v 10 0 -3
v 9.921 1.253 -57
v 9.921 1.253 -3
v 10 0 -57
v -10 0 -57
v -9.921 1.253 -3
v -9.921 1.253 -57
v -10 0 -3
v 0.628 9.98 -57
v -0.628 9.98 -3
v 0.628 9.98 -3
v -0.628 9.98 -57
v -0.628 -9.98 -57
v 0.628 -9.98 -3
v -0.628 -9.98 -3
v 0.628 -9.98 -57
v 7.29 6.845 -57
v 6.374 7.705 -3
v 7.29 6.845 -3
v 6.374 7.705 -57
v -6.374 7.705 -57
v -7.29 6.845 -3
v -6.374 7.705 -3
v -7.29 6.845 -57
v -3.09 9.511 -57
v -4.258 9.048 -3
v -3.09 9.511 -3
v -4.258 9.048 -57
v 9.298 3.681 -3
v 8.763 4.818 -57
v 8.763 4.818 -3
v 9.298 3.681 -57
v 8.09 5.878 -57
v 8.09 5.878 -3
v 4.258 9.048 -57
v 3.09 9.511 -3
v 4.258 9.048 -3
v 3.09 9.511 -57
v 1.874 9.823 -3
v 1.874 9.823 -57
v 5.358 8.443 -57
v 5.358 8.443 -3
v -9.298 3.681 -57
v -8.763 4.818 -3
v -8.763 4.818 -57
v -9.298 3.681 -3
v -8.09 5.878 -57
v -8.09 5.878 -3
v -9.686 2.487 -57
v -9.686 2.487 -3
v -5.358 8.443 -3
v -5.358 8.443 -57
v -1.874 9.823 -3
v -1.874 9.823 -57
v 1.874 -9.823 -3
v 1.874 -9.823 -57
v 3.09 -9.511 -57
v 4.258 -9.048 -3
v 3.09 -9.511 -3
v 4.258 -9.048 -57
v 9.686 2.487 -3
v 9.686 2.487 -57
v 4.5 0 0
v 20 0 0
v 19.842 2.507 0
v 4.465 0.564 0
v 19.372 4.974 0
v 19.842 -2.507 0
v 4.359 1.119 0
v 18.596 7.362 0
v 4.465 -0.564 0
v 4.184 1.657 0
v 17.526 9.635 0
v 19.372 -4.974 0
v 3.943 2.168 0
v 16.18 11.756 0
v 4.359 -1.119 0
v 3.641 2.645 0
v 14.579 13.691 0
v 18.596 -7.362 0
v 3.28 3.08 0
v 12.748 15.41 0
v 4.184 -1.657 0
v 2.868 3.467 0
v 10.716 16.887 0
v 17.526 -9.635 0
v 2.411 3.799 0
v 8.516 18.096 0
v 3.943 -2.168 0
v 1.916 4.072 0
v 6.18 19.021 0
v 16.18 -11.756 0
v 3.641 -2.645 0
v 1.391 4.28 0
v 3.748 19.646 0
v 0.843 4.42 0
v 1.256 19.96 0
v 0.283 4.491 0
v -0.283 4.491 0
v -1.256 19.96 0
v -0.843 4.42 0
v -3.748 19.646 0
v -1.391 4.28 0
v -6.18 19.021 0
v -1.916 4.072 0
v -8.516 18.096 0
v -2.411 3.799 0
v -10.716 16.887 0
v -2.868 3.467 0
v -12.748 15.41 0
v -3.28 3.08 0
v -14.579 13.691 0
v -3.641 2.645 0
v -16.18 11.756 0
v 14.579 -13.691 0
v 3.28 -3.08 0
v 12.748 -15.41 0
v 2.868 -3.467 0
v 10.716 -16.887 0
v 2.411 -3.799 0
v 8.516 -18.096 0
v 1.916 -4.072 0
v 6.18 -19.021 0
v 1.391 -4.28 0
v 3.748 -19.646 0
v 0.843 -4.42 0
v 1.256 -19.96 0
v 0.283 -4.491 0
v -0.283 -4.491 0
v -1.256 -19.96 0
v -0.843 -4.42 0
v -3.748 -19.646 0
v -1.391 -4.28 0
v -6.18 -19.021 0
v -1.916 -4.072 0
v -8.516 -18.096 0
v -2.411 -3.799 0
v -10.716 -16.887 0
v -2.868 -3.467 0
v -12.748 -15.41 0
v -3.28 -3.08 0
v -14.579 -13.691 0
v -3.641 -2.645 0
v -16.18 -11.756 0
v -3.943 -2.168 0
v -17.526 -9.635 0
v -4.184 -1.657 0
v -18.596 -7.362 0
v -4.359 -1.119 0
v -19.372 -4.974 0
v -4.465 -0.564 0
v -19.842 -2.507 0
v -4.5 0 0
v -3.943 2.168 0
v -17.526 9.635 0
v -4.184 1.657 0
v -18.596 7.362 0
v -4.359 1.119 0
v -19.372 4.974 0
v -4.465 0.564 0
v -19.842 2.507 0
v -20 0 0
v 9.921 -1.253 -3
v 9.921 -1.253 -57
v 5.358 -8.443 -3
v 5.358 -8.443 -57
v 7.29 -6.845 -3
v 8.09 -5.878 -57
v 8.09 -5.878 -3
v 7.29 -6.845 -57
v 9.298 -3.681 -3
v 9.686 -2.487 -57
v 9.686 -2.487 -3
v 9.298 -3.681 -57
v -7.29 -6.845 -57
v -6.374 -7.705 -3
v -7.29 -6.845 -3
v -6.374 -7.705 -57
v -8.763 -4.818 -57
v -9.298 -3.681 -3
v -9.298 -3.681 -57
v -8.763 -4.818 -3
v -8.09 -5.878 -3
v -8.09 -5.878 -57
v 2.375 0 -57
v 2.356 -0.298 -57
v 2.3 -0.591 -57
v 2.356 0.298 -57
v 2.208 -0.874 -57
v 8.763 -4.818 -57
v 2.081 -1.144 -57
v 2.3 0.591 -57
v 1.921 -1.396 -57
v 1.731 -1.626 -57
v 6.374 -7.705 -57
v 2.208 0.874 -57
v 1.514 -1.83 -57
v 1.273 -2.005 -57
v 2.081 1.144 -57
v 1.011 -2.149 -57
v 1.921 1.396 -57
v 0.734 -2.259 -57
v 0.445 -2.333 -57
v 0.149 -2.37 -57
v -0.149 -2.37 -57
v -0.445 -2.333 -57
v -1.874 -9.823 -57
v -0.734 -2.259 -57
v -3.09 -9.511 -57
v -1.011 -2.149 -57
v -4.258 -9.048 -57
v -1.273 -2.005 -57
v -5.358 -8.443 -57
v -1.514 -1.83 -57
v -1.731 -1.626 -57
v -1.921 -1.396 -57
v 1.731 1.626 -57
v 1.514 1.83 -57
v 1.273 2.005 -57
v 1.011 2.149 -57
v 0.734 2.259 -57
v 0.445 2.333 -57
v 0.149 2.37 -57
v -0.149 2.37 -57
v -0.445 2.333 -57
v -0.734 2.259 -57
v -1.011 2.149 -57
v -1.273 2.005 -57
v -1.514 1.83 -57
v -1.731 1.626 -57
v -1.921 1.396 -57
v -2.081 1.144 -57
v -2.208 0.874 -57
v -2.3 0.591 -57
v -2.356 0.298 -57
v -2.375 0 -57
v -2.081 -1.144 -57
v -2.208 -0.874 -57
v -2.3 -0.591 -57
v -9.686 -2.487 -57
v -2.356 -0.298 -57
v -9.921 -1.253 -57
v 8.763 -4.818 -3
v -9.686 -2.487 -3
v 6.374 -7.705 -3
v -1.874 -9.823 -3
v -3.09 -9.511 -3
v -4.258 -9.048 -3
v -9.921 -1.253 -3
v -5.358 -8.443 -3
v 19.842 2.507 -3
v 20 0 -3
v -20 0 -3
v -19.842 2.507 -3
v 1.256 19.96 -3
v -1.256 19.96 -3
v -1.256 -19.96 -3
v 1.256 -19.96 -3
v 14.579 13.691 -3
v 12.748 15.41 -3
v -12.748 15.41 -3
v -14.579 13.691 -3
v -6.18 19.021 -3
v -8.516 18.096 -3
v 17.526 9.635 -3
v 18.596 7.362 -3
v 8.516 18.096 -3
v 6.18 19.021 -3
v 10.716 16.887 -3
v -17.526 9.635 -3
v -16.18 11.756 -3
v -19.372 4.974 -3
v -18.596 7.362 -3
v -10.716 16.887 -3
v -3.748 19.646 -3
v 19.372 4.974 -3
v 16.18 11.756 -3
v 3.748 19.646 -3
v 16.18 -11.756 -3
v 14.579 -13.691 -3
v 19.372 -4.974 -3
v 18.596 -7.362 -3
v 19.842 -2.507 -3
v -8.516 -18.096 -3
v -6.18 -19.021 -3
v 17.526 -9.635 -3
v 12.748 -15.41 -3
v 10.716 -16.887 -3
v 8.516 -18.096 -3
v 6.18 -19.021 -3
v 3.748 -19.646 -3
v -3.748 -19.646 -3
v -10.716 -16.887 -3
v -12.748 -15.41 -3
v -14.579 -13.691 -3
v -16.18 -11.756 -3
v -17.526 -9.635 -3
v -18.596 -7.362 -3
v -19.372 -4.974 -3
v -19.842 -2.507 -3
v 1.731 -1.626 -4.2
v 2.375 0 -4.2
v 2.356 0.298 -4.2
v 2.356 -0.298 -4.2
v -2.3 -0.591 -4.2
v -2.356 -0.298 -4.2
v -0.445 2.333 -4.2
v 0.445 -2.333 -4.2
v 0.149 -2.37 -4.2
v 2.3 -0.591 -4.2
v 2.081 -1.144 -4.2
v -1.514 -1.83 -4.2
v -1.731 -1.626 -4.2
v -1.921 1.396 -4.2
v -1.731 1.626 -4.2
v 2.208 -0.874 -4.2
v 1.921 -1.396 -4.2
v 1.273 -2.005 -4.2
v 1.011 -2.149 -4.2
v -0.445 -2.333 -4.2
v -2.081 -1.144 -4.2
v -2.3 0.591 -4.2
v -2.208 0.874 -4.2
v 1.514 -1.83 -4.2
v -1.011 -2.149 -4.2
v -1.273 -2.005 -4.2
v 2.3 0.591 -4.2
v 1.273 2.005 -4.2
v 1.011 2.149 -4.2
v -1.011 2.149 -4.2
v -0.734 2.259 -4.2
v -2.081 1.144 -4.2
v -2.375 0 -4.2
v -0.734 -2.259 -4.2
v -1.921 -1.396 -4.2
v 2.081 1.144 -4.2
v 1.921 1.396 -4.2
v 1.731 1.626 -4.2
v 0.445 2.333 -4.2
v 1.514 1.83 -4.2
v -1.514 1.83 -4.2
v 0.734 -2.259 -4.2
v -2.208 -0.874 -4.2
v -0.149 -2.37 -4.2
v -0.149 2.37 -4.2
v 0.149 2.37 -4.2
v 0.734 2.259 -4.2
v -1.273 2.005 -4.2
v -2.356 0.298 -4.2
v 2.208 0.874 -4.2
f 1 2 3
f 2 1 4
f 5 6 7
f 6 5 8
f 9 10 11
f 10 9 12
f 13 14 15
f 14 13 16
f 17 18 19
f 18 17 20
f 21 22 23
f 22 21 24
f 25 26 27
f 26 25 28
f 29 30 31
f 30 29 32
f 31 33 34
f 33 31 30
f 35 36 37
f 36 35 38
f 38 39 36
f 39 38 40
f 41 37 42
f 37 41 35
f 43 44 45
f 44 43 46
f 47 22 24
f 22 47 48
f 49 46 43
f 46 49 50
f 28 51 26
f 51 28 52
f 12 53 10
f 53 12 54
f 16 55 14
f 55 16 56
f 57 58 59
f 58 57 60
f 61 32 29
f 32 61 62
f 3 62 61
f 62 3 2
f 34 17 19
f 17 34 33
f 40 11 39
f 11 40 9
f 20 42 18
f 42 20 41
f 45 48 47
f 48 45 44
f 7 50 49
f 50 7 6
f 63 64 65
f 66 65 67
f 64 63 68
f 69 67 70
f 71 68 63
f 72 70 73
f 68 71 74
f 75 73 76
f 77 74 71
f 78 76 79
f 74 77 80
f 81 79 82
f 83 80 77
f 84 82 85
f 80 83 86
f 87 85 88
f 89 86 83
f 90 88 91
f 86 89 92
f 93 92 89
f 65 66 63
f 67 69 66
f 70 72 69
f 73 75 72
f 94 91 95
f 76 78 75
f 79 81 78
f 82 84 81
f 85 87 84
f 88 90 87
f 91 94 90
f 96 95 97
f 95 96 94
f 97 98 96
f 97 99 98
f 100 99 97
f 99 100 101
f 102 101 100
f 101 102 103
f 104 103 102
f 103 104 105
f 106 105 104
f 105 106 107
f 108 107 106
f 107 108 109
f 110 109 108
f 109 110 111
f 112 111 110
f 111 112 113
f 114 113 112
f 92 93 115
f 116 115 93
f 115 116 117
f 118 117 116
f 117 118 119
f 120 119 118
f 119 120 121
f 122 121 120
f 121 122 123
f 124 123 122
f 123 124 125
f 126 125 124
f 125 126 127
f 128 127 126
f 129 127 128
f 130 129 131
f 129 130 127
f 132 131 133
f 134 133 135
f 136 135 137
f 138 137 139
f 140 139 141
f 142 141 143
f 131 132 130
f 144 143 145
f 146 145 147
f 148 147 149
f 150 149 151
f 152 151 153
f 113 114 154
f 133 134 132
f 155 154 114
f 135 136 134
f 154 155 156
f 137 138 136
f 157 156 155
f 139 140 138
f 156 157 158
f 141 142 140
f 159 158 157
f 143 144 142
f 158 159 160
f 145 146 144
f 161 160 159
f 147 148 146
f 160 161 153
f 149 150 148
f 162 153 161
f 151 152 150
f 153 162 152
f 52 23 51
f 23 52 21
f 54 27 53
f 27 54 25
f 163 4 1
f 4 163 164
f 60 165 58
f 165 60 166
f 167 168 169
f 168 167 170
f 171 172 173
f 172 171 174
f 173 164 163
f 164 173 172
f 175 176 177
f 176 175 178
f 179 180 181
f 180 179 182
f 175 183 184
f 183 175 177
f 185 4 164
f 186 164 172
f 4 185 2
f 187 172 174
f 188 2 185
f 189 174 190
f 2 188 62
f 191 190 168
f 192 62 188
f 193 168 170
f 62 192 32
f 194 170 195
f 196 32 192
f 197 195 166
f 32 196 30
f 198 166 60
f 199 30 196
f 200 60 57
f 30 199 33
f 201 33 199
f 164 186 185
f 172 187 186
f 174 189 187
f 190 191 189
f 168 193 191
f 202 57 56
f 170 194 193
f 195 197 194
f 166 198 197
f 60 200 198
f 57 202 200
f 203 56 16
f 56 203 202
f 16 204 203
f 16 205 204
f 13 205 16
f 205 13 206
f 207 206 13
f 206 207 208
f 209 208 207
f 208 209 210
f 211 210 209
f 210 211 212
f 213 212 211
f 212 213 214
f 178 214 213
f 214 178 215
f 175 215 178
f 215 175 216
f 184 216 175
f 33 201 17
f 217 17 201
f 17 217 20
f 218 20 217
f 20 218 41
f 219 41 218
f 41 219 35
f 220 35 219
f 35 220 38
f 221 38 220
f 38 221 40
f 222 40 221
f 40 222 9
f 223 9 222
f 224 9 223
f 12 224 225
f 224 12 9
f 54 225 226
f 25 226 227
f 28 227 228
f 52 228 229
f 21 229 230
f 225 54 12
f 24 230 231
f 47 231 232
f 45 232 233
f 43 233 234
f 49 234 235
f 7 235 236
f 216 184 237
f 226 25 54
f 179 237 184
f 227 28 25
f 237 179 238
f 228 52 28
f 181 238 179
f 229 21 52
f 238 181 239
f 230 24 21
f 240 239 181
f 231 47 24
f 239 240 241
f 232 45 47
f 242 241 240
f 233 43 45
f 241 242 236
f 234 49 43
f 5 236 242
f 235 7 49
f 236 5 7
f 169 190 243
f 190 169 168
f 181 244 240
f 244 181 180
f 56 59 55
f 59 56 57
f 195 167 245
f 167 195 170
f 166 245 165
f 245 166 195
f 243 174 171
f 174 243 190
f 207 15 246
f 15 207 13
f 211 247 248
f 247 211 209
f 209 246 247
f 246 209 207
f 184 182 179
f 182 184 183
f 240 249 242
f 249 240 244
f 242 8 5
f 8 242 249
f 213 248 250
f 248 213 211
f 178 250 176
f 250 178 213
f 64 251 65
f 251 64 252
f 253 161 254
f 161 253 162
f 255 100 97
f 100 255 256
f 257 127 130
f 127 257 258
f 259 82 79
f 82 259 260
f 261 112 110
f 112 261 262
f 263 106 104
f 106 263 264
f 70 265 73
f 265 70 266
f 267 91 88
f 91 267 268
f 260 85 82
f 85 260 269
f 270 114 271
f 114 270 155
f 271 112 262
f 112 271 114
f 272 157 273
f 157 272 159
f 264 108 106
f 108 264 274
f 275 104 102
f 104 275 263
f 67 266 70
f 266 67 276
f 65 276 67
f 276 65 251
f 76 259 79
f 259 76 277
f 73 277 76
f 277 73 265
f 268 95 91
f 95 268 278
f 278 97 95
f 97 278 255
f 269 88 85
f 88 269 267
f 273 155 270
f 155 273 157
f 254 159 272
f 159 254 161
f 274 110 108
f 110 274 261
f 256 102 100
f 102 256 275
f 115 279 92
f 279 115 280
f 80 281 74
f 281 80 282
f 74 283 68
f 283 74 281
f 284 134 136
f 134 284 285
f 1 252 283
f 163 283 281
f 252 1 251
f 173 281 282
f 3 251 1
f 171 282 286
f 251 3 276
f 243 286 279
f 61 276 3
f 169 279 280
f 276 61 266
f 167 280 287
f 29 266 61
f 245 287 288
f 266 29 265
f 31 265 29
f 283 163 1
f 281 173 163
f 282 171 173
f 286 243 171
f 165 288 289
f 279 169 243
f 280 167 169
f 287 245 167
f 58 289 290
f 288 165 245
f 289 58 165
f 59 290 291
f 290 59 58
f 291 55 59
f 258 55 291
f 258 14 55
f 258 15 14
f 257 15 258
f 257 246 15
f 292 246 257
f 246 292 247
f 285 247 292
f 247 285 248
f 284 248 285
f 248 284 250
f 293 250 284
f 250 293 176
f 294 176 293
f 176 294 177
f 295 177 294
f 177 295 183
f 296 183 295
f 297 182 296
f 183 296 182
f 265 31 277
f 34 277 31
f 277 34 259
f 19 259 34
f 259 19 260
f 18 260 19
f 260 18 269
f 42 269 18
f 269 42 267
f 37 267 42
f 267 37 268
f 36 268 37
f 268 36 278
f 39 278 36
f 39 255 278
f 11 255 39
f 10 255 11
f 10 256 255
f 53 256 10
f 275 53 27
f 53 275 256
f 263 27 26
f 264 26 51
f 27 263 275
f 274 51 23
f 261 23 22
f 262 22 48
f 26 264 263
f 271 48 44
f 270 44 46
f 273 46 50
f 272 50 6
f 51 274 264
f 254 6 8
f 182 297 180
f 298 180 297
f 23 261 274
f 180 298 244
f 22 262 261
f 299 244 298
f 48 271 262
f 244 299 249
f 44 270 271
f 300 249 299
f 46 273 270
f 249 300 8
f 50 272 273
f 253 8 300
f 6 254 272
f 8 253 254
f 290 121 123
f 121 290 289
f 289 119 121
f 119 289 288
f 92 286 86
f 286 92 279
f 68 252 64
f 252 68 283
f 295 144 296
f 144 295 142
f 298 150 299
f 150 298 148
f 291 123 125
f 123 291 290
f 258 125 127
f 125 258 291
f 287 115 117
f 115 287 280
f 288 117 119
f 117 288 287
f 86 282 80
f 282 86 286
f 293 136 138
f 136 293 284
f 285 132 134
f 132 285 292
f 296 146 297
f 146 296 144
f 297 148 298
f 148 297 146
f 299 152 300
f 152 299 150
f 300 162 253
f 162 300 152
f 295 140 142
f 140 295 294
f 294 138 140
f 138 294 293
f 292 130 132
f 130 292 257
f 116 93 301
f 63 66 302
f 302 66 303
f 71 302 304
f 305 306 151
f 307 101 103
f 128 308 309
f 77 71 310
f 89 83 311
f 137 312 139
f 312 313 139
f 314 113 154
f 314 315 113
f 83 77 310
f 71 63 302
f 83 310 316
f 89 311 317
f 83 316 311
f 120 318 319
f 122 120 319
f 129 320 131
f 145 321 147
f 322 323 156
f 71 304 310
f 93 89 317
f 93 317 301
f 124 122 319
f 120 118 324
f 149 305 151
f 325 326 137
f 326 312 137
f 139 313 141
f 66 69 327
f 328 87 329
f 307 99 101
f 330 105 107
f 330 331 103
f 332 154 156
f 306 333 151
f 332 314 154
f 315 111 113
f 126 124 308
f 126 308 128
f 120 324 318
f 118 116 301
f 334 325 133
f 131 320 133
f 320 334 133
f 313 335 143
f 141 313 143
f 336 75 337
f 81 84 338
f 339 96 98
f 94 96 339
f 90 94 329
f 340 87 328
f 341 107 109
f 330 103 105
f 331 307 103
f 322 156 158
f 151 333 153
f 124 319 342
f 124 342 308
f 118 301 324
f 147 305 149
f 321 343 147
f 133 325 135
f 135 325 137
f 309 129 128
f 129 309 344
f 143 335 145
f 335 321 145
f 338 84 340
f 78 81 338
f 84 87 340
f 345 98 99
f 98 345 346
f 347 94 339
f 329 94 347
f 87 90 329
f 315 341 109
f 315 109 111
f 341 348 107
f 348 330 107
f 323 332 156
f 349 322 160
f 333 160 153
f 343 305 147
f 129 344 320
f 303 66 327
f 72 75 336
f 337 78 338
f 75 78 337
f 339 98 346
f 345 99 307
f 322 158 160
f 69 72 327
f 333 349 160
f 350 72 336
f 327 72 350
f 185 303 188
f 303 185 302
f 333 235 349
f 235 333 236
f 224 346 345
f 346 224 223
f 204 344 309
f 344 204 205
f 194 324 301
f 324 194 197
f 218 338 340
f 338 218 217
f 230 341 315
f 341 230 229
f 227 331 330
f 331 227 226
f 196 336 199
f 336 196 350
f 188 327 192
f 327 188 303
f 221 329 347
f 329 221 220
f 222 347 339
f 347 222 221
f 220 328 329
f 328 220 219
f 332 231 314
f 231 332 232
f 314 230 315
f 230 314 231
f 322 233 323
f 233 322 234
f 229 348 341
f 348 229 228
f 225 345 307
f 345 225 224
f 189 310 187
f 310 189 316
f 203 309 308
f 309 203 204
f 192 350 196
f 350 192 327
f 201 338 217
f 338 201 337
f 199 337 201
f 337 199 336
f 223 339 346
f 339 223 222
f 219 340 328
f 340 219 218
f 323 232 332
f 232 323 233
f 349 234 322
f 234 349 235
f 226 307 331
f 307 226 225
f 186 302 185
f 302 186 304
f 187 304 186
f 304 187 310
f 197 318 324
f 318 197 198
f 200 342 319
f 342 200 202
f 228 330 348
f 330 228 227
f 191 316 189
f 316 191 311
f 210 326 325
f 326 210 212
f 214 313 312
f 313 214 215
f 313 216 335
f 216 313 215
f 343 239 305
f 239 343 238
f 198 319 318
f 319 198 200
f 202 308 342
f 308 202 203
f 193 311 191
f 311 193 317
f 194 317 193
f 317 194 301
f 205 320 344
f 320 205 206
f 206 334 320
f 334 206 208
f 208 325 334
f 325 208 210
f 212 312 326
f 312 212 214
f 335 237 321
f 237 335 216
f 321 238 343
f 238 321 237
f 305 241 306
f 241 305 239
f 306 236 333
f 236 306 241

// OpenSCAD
$fn = 50;


difference() {
	union() {
		translate(v = [0, 0, -57.0000000000]) {
			cylinder(h = 57, r = 10.0000000000);
		}
		translate(v = [0, 0, -3.0000000000]) {
			cylinder(h = 3, r = 20.0000000000);
		}
	}
	union() {
		translate(v = [0, 0, 0]) {
			rotate(a = [0, 0, 0]) {
				difference() {
					union() {
						#translate(v = [0, 0, -57.0000000000]) {
							cylinder(h = 57, r = 2.2500000000);
						}
						#translate(v = [0, 0, -4.2000000000]) {
							cylinder(h = 4.2000000000, r = 10.0000000000, r1 = 2.3750000000, r2 = 4.5000000000);
						}
						#translate(v = [0, 0, -57.0000000000]) {
							cylinder(h = 57, r = 2.3750000000);
						}
						#translate(v = [0, 0, -57.0000000000]) {
							cylinder(h = 57, r = 2.2500000000);
						}
					}
					union();
				}
			}
		}
	}
}
